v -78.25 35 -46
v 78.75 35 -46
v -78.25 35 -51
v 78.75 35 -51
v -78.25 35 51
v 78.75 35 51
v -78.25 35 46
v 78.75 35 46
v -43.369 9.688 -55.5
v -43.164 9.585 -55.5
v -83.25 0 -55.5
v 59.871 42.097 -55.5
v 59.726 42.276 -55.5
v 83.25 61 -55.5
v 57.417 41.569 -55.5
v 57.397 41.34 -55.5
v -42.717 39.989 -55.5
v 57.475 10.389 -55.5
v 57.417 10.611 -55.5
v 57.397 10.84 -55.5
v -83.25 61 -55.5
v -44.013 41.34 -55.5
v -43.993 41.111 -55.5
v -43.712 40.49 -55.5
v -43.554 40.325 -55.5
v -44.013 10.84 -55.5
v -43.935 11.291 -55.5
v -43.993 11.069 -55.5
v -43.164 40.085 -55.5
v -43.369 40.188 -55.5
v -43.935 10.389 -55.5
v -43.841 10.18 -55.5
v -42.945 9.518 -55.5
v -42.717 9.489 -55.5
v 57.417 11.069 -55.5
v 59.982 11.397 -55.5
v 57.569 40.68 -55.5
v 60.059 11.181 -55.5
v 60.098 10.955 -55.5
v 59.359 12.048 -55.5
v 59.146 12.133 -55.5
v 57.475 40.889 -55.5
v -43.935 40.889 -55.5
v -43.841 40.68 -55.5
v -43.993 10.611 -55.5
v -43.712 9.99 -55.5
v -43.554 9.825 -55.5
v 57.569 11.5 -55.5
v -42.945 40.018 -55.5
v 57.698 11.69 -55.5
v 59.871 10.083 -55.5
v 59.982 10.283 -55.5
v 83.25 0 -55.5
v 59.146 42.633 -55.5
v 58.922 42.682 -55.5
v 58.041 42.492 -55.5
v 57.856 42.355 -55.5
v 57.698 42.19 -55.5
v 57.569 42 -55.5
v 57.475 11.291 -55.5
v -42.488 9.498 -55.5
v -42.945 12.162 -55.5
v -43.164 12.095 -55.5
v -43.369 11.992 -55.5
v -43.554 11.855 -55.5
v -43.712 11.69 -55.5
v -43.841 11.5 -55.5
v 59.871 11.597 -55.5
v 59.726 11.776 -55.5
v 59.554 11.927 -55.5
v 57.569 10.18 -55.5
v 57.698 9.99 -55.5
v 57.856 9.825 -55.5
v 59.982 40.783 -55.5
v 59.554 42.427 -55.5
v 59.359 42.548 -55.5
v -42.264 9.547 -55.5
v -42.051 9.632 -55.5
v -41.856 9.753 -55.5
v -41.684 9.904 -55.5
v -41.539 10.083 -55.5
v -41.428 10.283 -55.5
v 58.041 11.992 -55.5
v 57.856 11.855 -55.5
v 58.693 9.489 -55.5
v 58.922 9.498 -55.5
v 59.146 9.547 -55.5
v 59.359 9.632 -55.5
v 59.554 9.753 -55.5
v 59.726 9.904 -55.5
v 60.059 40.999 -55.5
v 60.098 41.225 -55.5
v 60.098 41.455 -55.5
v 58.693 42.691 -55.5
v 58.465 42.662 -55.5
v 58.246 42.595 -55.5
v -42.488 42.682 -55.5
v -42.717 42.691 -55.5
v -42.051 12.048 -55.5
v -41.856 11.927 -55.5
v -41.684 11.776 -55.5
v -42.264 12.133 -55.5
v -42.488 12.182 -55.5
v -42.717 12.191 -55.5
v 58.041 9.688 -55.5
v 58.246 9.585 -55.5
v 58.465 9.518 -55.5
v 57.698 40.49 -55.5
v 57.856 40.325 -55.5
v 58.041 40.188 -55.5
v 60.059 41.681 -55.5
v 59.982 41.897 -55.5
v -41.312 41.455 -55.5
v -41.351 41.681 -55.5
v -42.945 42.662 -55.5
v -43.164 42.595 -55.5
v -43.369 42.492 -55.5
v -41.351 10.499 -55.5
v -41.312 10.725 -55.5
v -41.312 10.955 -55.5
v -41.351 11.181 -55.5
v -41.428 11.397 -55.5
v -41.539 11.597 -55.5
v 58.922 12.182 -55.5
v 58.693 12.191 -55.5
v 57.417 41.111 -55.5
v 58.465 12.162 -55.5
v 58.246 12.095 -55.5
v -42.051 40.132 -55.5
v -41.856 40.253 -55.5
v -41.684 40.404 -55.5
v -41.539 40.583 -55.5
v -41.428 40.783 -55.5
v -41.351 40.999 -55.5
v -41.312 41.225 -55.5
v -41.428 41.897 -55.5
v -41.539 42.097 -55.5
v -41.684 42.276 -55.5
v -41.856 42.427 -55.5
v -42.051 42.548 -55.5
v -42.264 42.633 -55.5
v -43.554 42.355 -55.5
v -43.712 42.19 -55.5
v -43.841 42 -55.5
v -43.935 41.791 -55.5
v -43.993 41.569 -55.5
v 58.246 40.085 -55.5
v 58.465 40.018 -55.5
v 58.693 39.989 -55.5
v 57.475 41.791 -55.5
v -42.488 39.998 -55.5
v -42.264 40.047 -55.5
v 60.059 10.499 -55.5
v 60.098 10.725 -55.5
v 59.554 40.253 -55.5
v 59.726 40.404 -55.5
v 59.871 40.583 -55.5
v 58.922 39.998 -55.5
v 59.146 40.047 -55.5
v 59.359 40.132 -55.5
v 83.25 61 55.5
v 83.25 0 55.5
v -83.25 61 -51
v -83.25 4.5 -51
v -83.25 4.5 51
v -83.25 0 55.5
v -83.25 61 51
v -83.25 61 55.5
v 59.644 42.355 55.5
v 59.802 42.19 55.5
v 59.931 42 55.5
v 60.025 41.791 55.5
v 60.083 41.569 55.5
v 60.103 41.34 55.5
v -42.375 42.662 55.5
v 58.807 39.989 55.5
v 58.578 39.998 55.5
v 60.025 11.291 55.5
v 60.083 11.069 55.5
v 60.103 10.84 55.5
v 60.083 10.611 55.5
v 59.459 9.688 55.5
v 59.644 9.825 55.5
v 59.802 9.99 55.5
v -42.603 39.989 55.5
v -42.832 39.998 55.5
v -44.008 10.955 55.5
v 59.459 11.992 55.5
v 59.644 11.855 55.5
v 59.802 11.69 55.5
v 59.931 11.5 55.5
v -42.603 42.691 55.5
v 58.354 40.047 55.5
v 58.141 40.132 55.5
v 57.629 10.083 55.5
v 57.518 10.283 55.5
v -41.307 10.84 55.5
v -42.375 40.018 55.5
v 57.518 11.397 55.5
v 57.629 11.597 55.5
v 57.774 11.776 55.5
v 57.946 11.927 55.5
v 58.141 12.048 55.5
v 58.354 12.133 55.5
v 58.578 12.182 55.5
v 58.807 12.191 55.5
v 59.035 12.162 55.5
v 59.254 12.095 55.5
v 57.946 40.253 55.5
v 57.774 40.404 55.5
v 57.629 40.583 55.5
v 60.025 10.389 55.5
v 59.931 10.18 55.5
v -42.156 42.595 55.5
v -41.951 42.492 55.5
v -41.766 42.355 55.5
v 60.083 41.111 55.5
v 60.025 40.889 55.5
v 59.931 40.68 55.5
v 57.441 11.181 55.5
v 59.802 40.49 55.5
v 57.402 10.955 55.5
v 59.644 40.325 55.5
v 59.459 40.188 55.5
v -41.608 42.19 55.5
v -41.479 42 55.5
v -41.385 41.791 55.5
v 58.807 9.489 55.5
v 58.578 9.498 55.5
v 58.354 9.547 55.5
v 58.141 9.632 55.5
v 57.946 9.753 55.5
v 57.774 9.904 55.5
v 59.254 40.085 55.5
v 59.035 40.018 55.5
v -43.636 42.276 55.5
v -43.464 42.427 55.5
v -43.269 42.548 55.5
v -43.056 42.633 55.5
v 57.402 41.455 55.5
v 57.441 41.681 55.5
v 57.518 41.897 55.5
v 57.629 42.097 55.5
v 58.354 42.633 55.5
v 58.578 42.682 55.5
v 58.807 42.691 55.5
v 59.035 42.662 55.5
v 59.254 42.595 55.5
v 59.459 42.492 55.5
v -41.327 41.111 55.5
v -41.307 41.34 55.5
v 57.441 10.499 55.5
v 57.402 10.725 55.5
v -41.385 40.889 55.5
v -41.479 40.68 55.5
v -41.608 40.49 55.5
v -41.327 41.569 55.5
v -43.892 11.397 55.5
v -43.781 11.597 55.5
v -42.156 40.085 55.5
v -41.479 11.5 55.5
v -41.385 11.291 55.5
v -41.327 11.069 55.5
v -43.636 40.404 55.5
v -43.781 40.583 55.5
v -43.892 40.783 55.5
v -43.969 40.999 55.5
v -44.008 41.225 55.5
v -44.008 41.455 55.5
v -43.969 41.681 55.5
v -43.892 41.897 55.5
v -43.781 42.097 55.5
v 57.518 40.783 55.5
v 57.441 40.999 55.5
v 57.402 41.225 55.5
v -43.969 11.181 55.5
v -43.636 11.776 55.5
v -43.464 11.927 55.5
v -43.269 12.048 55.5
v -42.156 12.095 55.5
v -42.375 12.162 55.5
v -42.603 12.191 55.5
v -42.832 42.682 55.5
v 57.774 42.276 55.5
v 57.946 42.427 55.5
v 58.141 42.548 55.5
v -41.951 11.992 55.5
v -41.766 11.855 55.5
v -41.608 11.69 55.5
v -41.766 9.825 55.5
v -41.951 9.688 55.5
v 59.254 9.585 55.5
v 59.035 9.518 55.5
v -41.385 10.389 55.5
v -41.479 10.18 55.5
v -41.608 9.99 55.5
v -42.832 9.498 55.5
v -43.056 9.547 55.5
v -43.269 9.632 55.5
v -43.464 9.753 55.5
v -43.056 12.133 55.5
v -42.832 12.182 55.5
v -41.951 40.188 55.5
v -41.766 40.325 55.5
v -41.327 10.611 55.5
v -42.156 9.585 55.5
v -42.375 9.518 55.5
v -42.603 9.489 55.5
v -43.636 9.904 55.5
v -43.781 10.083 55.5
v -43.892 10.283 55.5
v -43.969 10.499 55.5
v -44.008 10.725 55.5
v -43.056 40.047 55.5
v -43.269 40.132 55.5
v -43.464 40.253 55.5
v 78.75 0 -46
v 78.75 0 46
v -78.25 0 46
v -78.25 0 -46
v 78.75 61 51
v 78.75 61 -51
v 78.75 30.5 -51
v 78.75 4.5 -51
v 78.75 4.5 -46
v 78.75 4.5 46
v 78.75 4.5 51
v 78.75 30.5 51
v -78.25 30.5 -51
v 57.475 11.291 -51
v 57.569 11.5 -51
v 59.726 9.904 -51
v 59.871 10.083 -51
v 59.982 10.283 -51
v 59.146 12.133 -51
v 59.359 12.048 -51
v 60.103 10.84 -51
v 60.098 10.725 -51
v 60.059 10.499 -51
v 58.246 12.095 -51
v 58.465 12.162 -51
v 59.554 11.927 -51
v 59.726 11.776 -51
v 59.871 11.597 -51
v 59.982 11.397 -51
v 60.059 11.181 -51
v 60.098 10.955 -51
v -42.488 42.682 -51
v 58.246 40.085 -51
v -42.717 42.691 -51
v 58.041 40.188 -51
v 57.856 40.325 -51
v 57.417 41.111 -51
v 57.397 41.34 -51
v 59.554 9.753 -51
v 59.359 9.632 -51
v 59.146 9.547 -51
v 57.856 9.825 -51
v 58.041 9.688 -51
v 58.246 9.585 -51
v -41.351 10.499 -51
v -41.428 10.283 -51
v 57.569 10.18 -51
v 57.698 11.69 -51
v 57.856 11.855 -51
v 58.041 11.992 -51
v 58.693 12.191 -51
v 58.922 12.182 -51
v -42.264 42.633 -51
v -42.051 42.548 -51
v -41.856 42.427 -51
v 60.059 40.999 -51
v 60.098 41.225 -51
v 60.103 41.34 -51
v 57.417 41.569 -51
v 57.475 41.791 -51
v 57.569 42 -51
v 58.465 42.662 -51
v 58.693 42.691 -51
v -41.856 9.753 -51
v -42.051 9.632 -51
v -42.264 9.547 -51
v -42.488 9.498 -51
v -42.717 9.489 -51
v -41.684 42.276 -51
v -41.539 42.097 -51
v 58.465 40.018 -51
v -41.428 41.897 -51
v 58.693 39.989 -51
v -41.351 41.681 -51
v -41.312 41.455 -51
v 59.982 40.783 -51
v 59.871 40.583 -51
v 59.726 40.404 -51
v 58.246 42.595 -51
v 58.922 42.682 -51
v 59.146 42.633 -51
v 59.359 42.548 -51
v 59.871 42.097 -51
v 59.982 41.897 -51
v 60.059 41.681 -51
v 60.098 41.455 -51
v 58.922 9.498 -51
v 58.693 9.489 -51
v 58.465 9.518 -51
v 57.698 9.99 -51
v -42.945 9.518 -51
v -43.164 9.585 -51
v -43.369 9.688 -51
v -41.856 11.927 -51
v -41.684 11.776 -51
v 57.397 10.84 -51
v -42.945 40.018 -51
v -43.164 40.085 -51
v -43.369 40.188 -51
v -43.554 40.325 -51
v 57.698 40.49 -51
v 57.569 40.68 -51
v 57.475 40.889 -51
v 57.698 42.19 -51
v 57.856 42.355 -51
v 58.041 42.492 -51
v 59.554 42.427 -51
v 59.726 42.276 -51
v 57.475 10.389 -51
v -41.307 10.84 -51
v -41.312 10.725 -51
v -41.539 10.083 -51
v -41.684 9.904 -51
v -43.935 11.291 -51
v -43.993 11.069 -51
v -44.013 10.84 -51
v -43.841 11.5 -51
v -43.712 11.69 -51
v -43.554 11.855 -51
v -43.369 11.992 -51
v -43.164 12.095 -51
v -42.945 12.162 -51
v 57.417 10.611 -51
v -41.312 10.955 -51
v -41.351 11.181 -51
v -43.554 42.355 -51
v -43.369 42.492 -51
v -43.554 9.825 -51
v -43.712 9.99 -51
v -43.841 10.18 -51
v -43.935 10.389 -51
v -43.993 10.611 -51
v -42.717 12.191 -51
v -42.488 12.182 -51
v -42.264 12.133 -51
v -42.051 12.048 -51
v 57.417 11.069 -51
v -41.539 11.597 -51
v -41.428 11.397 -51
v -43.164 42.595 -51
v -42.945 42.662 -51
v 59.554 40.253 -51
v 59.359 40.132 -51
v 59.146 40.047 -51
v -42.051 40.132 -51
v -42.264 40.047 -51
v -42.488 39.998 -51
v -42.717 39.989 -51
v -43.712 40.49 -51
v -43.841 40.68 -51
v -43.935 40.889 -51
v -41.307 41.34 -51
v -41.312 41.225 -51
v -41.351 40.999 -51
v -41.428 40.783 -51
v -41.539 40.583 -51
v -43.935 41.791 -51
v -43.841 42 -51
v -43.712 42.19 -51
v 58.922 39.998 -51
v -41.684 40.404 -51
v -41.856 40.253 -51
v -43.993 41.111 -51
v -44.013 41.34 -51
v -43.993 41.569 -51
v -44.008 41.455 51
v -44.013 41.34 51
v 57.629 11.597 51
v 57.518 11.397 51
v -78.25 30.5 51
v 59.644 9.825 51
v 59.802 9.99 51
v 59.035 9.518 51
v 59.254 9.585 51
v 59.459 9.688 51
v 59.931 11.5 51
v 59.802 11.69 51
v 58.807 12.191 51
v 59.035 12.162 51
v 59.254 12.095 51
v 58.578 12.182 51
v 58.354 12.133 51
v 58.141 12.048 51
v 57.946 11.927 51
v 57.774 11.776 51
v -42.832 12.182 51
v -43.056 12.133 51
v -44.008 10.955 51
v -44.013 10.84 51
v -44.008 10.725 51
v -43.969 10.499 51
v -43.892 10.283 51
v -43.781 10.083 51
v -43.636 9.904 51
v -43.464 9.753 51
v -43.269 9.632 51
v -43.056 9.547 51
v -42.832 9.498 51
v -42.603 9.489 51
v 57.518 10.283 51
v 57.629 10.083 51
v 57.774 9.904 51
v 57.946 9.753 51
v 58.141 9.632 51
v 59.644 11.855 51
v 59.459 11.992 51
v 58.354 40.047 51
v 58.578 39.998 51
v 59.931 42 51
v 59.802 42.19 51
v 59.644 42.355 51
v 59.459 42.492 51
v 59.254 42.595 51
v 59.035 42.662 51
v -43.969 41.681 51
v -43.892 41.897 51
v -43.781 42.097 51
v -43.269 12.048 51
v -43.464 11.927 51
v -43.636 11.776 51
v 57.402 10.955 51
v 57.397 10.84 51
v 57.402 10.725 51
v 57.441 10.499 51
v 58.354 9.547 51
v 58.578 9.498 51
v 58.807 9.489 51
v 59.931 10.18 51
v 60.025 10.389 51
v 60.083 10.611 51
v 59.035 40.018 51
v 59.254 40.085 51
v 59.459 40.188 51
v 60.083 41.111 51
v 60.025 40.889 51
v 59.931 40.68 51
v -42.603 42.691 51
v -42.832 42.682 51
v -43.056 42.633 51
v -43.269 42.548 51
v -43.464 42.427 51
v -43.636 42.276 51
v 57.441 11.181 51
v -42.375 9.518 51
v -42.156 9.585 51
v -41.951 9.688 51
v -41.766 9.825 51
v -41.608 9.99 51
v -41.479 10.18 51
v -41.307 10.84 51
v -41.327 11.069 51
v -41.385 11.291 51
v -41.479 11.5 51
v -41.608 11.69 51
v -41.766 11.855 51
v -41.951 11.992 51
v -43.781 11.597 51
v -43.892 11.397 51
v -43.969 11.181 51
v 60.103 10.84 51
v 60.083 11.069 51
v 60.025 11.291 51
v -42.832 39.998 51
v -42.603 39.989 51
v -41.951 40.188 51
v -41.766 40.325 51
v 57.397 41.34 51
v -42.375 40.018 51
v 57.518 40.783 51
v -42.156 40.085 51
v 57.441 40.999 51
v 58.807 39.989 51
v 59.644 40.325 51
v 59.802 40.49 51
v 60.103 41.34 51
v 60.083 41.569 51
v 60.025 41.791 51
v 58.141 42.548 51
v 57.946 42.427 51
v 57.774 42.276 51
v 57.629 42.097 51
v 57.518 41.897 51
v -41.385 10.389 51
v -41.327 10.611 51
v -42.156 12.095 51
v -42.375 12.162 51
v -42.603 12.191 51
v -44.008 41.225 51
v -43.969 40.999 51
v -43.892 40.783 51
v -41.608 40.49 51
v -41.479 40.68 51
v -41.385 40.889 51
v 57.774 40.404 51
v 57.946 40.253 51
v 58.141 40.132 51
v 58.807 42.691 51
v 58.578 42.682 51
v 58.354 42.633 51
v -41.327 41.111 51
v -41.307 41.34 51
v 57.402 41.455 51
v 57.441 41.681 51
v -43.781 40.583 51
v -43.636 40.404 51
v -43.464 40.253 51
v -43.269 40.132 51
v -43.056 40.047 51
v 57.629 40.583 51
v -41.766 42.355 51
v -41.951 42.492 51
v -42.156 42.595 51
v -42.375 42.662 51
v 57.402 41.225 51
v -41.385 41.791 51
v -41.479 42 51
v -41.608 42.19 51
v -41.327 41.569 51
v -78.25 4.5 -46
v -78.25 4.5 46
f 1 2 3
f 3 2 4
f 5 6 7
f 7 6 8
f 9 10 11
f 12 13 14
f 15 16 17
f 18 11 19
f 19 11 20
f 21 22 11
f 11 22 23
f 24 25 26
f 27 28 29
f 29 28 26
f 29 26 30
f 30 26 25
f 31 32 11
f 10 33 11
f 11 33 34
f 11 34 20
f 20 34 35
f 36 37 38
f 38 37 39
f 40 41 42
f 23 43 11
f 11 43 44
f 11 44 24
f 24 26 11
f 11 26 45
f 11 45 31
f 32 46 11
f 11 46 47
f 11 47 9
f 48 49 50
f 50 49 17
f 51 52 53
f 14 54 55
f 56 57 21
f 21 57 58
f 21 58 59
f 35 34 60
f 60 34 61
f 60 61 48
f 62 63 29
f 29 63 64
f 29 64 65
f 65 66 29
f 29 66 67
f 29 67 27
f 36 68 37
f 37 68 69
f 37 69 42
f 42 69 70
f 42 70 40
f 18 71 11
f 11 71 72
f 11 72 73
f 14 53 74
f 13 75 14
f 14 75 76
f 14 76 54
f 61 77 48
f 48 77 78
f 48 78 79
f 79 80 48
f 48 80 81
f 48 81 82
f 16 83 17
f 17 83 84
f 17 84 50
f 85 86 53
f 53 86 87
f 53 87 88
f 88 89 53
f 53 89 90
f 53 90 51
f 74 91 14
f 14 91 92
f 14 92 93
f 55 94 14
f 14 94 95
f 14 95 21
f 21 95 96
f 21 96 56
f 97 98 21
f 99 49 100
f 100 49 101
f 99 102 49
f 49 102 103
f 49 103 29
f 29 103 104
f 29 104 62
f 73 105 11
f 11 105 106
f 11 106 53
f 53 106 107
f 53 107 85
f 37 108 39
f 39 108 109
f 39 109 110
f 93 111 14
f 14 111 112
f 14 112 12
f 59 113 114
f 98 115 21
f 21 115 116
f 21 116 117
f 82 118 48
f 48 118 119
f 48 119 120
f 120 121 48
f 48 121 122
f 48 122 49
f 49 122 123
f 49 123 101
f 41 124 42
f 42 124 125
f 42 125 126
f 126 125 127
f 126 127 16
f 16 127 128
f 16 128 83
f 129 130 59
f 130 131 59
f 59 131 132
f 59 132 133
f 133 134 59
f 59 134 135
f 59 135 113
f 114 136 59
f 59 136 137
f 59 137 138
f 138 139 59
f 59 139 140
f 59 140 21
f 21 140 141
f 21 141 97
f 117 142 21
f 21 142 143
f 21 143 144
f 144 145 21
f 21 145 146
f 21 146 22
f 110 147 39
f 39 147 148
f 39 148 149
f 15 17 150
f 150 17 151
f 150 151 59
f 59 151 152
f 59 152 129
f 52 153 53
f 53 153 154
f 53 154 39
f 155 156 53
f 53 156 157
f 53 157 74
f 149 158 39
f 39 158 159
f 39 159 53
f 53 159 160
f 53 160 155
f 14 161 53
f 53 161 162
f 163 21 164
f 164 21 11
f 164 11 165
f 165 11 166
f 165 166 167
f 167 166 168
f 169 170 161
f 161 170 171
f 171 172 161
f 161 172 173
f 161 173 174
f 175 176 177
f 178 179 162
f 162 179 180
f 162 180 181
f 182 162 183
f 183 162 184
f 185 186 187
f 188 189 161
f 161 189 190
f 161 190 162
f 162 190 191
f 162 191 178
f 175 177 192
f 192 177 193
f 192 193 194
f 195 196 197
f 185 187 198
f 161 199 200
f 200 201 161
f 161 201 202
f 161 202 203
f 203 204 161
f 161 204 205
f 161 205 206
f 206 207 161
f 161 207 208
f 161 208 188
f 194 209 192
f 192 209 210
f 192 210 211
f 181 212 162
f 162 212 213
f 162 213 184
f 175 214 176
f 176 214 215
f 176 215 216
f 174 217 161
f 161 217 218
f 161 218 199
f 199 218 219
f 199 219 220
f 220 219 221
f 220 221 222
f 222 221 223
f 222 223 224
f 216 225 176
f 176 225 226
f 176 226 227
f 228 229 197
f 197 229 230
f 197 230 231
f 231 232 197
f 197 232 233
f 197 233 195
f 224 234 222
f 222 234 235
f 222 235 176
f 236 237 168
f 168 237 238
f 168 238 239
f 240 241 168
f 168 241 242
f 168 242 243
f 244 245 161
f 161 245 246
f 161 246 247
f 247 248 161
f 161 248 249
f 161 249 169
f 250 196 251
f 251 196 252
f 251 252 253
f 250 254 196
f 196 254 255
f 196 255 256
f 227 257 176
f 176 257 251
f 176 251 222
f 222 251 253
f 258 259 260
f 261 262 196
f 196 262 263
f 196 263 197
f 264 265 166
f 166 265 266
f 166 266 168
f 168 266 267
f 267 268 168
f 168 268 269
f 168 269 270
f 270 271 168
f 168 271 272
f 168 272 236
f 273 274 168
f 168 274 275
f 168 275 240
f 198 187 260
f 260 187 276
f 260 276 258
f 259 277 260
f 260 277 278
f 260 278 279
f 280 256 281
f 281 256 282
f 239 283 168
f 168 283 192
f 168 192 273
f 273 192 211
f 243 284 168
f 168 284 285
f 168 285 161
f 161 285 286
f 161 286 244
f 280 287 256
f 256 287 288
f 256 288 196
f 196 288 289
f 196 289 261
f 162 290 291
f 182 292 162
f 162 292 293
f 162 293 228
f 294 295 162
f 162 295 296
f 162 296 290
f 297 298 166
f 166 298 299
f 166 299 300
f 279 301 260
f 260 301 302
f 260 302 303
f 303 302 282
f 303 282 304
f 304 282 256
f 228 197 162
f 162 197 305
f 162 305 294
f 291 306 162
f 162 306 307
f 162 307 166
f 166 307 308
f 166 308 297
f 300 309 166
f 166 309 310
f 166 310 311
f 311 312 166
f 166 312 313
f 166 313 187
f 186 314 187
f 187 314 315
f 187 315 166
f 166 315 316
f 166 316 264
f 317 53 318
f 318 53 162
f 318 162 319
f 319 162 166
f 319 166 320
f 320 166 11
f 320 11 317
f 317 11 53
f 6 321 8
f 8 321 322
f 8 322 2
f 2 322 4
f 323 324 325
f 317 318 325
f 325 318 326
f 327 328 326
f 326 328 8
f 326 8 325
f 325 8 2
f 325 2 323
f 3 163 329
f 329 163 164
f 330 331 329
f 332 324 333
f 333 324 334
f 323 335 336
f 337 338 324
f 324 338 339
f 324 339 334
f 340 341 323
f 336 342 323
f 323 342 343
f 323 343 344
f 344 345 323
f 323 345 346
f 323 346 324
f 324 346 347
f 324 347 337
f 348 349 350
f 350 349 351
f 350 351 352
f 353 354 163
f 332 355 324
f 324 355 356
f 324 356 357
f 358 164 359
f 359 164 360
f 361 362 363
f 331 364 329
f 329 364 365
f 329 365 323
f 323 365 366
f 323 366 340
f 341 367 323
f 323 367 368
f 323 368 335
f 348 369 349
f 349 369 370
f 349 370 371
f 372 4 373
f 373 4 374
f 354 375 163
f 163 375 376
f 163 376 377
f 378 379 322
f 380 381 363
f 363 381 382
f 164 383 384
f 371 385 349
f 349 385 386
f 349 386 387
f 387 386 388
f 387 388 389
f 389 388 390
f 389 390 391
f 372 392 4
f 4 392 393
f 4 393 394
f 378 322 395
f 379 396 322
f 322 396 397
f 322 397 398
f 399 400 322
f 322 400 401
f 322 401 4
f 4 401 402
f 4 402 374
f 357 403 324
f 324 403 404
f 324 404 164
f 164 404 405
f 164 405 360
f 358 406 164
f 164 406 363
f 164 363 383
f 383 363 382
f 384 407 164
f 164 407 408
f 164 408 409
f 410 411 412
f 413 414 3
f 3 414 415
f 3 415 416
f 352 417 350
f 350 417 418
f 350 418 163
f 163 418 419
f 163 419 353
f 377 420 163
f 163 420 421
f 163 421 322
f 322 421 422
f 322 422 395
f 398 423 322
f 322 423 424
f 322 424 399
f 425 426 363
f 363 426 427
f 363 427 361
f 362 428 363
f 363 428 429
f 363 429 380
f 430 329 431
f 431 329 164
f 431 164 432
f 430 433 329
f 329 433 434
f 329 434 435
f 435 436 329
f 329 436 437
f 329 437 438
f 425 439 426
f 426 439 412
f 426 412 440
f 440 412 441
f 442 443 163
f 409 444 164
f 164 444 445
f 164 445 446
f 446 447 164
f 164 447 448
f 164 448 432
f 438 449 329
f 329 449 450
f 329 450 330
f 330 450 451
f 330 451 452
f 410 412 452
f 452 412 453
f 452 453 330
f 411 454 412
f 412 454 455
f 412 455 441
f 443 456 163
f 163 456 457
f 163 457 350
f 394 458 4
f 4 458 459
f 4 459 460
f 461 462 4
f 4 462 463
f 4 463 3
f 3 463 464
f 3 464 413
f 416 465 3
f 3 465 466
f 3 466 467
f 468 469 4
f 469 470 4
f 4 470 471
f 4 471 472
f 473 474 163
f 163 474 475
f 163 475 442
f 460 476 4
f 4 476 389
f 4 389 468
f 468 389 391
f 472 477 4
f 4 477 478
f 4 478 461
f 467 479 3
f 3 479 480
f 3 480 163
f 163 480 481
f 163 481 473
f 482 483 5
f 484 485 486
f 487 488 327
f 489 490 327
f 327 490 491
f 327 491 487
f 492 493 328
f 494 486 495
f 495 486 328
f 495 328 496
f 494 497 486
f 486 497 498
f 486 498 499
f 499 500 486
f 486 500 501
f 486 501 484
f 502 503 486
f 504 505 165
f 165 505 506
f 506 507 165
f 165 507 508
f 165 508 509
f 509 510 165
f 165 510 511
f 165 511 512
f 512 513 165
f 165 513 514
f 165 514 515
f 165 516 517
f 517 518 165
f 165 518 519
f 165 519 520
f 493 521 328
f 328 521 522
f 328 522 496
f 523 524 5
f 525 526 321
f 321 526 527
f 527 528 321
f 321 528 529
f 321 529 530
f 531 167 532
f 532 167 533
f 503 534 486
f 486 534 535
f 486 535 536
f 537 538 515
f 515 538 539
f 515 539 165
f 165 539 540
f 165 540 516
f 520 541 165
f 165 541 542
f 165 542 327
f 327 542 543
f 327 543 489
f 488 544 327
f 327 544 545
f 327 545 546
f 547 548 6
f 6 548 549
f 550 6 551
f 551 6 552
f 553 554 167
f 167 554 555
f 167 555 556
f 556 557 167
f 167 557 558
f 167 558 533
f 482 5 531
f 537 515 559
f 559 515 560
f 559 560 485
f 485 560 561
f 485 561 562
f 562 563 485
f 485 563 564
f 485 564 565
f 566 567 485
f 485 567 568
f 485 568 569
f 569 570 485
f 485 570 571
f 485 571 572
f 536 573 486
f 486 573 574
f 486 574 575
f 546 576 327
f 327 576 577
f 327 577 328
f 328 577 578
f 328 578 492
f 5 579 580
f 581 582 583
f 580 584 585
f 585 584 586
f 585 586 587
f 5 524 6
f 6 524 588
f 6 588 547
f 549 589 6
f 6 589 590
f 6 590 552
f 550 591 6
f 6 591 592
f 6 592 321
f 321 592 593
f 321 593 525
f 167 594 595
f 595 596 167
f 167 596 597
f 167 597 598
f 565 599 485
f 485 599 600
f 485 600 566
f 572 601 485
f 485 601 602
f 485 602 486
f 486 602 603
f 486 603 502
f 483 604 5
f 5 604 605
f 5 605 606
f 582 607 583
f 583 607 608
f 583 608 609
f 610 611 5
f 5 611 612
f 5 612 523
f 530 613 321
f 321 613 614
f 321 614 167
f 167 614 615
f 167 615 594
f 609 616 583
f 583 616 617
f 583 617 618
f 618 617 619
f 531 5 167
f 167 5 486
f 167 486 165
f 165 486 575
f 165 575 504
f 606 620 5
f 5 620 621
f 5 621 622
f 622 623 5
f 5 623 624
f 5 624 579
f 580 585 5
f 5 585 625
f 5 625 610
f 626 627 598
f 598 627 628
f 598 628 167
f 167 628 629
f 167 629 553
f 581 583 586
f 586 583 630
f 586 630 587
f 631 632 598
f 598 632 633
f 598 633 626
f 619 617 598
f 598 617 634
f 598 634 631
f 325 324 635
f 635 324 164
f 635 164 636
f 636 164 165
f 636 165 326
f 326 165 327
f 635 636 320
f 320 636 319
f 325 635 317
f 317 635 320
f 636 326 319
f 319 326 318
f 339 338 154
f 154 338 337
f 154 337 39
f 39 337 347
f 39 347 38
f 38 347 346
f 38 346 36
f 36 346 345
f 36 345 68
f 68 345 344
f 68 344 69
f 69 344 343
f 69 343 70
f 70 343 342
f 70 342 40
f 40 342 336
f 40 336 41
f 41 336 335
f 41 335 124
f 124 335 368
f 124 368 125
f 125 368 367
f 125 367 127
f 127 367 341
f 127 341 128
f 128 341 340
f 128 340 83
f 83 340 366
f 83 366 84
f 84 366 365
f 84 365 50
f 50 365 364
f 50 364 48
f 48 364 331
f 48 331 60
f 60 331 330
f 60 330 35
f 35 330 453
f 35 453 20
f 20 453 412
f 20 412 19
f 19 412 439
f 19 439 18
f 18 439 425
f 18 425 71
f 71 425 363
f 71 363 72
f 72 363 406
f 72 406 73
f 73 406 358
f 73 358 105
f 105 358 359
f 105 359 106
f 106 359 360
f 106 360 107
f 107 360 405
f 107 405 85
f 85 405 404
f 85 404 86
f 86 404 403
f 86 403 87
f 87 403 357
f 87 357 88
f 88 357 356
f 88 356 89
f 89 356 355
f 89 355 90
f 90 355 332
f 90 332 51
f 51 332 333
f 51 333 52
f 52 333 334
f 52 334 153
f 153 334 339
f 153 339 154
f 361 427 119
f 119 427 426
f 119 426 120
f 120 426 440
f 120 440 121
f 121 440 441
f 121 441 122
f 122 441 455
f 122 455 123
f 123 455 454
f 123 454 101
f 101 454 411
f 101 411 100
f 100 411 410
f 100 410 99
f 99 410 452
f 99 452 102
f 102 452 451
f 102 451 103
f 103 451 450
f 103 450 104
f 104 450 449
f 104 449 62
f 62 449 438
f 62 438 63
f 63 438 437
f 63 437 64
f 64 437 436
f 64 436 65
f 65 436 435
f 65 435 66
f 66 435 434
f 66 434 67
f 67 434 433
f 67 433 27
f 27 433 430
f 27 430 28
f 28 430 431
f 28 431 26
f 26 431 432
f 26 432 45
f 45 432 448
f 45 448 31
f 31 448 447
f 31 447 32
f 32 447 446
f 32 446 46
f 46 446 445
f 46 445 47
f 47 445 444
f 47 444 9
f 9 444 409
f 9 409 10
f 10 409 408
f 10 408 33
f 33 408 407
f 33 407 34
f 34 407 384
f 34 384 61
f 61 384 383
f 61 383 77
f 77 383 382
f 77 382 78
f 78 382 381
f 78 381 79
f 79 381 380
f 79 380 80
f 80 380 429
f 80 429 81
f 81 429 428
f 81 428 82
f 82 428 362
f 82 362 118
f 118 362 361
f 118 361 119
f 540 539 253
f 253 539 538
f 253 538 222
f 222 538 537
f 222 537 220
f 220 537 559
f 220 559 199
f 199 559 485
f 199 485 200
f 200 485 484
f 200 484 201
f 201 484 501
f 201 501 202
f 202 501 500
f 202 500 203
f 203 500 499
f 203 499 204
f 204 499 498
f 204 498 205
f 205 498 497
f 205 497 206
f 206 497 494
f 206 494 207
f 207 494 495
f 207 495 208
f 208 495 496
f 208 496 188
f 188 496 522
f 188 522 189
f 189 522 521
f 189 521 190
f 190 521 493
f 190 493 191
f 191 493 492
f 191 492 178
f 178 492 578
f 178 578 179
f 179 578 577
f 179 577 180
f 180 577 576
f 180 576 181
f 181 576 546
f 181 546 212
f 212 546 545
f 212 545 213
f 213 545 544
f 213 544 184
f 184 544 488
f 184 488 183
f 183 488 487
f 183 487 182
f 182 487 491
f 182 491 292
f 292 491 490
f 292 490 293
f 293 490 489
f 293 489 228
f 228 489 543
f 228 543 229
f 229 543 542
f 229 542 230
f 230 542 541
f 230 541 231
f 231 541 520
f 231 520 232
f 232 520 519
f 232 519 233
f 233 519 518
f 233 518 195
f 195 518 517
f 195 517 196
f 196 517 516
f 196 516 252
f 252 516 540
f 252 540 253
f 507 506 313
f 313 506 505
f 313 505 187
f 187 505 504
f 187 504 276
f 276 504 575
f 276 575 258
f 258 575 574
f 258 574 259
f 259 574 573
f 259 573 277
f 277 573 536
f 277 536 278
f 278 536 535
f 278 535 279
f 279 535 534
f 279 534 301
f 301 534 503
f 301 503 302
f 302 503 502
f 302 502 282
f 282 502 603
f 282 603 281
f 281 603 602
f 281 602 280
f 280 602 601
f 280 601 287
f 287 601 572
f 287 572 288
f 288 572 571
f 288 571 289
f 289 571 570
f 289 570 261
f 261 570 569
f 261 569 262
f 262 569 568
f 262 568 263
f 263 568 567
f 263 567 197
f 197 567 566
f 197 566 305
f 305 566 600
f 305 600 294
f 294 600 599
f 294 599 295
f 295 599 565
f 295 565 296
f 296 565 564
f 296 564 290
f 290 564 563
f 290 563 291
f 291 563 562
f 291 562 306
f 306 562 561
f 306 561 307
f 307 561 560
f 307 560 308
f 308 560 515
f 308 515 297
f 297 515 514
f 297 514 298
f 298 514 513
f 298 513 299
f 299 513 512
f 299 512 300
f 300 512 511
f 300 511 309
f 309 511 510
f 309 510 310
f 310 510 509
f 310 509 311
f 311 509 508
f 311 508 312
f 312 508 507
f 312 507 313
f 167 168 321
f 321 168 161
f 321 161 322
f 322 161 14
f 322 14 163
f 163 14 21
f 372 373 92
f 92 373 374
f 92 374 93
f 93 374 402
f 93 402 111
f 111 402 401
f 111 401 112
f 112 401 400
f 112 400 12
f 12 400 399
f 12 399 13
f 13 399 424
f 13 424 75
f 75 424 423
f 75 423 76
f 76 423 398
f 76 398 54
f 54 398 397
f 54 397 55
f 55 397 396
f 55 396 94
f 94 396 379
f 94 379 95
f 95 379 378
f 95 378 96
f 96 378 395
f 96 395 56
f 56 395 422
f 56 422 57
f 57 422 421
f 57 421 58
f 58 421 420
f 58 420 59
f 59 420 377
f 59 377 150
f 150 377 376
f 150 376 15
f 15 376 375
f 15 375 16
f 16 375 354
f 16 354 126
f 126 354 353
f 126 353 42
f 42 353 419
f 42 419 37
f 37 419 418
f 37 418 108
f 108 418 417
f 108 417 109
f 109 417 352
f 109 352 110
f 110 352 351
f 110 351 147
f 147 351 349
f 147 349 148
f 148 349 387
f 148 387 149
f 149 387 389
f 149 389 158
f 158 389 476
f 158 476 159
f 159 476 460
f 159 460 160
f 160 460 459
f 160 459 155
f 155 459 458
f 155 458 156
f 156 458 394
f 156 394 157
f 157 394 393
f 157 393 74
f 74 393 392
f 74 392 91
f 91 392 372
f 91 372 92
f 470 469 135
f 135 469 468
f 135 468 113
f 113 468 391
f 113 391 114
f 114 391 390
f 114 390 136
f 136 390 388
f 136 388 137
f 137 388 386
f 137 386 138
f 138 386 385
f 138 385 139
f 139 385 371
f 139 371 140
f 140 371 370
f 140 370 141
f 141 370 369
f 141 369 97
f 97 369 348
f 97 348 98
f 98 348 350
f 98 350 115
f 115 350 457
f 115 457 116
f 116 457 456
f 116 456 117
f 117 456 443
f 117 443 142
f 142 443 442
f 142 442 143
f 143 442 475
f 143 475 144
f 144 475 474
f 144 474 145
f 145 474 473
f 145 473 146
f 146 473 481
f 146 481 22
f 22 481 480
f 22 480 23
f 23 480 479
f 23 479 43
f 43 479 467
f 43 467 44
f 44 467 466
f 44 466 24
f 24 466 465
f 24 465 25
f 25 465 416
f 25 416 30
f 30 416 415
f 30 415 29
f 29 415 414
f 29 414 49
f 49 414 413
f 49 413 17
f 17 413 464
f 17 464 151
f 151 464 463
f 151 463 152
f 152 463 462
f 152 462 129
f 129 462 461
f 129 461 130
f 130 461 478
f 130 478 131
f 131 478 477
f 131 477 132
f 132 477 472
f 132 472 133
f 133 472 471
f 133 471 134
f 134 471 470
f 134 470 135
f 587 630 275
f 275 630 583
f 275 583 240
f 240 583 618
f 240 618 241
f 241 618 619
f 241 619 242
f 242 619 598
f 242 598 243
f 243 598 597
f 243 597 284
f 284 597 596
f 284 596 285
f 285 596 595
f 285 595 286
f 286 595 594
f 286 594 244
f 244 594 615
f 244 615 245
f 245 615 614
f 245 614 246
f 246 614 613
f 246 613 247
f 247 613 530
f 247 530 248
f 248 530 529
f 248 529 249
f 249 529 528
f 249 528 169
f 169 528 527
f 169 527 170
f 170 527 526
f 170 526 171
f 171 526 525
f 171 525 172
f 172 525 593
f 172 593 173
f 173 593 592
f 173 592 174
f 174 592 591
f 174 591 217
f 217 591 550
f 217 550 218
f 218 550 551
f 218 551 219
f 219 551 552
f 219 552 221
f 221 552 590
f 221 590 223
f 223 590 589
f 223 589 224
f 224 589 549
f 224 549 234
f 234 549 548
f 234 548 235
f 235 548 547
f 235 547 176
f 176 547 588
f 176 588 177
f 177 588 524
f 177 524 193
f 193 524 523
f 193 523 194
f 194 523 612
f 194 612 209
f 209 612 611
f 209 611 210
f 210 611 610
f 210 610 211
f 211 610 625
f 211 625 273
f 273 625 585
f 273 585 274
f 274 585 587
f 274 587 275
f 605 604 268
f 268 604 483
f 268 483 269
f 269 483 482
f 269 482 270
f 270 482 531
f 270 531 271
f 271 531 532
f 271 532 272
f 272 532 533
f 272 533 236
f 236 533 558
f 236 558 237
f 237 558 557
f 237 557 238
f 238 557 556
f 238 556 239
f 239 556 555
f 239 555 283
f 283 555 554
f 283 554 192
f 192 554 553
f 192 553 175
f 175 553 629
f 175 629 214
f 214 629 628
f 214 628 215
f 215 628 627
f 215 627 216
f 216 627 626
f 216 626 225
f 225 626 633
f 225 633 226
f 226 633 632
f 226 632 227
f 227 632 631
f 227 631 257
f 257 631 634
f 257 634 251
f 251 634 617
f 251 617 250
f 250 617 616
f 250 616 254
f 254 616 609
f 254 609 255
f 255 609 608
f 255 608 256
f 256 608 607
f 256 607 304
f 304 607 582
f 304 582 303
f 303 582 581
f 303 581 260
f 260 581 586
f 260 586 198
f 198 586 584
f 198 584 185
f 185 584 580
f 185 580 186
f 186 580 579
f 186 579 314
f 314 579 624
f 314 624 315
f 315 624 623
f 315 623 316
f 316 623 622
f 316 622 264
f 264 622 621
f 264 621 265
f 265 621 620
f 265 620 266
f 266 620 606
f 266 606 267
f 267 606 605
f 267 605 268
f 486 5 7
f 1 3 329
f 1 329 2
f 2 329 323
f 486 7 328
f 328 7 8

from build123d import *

# Parameters (mm, degrees)
SKETCH1_W                     = 166.5
SKETCH1_H                     = 111
BOSS_EXTRUDE1_DEPTH           = 30.5
SHELL1_T                      = -4.5
CUT_EXTRUDE1_REACH            = 105.377
SKETCH2_W                     = 157
SKETCH2_H                     = 92
TAP_DRILL_FOR_6_32_TAP1_D     = 2.7051
TAP_DRILL_FOR_6_32_TAP1_DEPTH = 4.5
LPATTERN1_COUNT               = 2
LPATTERN1_PITCH               = 30.5
SKETCH7_W                     = 102
SKETCH7_H                     = 4.5
CUT_EXTRUDE2_DEPTH            = 5
CUT_EXTRUDE3_START            = -157
CUT_EXTRUDE3_DEPTH            = 157


with BuildPart() as part:
    # Sketch1 → Boss-Extrude1 (new body)
    with BuildSketch(Plane(origin=(0, 0, 0), x_dir=(1, 0, 0), z_dir=(0, 1, 0))):
        Rectangle(SKETCH1_W, SKETCH1_H)
    extrude(amount=BOSS_EXTRUDE1_DEPTH)

    # Shell1
    shell1_openings = [part.faces().sort_by_distance(p)[0] for p in [
        (0, 30.5, 0),
        (-83.25, 15.25, 0),
    ]]
    offset(amount=SHELL1_T, openings=shell1_openings, kind=Kind.INTERSECTION)

    # Sketch2 → Cut-Extrude1 (cut, up to next)
    with BuildSketch(Plane(origin=(0, 4.5, 0), x_dir=(1, 0, 0), z_dir=(0, 1, 0)), mode=Mode.PRIVATE) as cut_extrude1_sk1:
        with Locations((0.25, 0)):
            Rectangle(SKETCH2_W, SKETCH2_H)
    cut_extrude1_tool1 = extrude(cut_extrude1_sk1.sketch, amount=-CUT_EXTRUDE1_REACH, mode=Mode.PRIVATE) & part.part
    add(cut_extrude1_tool1.solids().sort_by_distance((0.25, 4.5, 0))[0], mode=Mode.SUBTRACT)

    # Tap Drill for #6-32 Tap1
    with Locations(Plane(origin=(0, 0, -55.5), x_dir=(-1, 0, 0), z_dir=(0, 0, -1))):
        with Locations((42.66, 10.84), (-58.75, 10.84)):
            tap_drill_for_6_32_tap1 = Hole(TAP_DRILL_FOR_6_32_TAP1_D / 2, depth=TAP_DRILL_FOR_6_32_TAP1_DEPTH)

    # Mirror1: Tap Drill for #6-32 Tap1 across plane
    add(tap_drill_for_6_32_tap1.mirror(Plane.XY), mode=Mode.SUBTRACT)


with BuildPart() as lpattern1_1:
    # LPattern1: pattern copy
    add(part.part.moved(Location(Vector(0, 1, 0) * (1 * LPATTERN1_PITCH))))


with BuildPart() as part_1:
    add(part.part)

    # Combine1: union LPattern1_1
    add(lpattern1_1.part)

    # Sketch7 → Cut-Extrude2 (cut)
    with BuildSketch(Plane.ZY.offset(83.25)):
        with Locations((0, 32.75)):
            Rectangle(SKETCH7_W, SKETCH7_H)
    extrude(amount=-CUT_EXTRUDE2_DEPTH, mode=Mode.SUBTRACT)

    # Sketch8 → Cut-Extrude3 (cut)
    with BuildSketch(Plane.ZY.offset(78.25).offset(CUT_EXTRUDE3_START)):
        Polygon((-51, 30.5), (-46, 35), (-46, 30.5), align=None)
        Polygon((51, 30.5), (46, 30.5), (46, 35), align=None)
    extrude(amount=CUT_EXTRUDE3_DEPTH, mode=Mode.SUBTRACT)


solid = part_1.part
